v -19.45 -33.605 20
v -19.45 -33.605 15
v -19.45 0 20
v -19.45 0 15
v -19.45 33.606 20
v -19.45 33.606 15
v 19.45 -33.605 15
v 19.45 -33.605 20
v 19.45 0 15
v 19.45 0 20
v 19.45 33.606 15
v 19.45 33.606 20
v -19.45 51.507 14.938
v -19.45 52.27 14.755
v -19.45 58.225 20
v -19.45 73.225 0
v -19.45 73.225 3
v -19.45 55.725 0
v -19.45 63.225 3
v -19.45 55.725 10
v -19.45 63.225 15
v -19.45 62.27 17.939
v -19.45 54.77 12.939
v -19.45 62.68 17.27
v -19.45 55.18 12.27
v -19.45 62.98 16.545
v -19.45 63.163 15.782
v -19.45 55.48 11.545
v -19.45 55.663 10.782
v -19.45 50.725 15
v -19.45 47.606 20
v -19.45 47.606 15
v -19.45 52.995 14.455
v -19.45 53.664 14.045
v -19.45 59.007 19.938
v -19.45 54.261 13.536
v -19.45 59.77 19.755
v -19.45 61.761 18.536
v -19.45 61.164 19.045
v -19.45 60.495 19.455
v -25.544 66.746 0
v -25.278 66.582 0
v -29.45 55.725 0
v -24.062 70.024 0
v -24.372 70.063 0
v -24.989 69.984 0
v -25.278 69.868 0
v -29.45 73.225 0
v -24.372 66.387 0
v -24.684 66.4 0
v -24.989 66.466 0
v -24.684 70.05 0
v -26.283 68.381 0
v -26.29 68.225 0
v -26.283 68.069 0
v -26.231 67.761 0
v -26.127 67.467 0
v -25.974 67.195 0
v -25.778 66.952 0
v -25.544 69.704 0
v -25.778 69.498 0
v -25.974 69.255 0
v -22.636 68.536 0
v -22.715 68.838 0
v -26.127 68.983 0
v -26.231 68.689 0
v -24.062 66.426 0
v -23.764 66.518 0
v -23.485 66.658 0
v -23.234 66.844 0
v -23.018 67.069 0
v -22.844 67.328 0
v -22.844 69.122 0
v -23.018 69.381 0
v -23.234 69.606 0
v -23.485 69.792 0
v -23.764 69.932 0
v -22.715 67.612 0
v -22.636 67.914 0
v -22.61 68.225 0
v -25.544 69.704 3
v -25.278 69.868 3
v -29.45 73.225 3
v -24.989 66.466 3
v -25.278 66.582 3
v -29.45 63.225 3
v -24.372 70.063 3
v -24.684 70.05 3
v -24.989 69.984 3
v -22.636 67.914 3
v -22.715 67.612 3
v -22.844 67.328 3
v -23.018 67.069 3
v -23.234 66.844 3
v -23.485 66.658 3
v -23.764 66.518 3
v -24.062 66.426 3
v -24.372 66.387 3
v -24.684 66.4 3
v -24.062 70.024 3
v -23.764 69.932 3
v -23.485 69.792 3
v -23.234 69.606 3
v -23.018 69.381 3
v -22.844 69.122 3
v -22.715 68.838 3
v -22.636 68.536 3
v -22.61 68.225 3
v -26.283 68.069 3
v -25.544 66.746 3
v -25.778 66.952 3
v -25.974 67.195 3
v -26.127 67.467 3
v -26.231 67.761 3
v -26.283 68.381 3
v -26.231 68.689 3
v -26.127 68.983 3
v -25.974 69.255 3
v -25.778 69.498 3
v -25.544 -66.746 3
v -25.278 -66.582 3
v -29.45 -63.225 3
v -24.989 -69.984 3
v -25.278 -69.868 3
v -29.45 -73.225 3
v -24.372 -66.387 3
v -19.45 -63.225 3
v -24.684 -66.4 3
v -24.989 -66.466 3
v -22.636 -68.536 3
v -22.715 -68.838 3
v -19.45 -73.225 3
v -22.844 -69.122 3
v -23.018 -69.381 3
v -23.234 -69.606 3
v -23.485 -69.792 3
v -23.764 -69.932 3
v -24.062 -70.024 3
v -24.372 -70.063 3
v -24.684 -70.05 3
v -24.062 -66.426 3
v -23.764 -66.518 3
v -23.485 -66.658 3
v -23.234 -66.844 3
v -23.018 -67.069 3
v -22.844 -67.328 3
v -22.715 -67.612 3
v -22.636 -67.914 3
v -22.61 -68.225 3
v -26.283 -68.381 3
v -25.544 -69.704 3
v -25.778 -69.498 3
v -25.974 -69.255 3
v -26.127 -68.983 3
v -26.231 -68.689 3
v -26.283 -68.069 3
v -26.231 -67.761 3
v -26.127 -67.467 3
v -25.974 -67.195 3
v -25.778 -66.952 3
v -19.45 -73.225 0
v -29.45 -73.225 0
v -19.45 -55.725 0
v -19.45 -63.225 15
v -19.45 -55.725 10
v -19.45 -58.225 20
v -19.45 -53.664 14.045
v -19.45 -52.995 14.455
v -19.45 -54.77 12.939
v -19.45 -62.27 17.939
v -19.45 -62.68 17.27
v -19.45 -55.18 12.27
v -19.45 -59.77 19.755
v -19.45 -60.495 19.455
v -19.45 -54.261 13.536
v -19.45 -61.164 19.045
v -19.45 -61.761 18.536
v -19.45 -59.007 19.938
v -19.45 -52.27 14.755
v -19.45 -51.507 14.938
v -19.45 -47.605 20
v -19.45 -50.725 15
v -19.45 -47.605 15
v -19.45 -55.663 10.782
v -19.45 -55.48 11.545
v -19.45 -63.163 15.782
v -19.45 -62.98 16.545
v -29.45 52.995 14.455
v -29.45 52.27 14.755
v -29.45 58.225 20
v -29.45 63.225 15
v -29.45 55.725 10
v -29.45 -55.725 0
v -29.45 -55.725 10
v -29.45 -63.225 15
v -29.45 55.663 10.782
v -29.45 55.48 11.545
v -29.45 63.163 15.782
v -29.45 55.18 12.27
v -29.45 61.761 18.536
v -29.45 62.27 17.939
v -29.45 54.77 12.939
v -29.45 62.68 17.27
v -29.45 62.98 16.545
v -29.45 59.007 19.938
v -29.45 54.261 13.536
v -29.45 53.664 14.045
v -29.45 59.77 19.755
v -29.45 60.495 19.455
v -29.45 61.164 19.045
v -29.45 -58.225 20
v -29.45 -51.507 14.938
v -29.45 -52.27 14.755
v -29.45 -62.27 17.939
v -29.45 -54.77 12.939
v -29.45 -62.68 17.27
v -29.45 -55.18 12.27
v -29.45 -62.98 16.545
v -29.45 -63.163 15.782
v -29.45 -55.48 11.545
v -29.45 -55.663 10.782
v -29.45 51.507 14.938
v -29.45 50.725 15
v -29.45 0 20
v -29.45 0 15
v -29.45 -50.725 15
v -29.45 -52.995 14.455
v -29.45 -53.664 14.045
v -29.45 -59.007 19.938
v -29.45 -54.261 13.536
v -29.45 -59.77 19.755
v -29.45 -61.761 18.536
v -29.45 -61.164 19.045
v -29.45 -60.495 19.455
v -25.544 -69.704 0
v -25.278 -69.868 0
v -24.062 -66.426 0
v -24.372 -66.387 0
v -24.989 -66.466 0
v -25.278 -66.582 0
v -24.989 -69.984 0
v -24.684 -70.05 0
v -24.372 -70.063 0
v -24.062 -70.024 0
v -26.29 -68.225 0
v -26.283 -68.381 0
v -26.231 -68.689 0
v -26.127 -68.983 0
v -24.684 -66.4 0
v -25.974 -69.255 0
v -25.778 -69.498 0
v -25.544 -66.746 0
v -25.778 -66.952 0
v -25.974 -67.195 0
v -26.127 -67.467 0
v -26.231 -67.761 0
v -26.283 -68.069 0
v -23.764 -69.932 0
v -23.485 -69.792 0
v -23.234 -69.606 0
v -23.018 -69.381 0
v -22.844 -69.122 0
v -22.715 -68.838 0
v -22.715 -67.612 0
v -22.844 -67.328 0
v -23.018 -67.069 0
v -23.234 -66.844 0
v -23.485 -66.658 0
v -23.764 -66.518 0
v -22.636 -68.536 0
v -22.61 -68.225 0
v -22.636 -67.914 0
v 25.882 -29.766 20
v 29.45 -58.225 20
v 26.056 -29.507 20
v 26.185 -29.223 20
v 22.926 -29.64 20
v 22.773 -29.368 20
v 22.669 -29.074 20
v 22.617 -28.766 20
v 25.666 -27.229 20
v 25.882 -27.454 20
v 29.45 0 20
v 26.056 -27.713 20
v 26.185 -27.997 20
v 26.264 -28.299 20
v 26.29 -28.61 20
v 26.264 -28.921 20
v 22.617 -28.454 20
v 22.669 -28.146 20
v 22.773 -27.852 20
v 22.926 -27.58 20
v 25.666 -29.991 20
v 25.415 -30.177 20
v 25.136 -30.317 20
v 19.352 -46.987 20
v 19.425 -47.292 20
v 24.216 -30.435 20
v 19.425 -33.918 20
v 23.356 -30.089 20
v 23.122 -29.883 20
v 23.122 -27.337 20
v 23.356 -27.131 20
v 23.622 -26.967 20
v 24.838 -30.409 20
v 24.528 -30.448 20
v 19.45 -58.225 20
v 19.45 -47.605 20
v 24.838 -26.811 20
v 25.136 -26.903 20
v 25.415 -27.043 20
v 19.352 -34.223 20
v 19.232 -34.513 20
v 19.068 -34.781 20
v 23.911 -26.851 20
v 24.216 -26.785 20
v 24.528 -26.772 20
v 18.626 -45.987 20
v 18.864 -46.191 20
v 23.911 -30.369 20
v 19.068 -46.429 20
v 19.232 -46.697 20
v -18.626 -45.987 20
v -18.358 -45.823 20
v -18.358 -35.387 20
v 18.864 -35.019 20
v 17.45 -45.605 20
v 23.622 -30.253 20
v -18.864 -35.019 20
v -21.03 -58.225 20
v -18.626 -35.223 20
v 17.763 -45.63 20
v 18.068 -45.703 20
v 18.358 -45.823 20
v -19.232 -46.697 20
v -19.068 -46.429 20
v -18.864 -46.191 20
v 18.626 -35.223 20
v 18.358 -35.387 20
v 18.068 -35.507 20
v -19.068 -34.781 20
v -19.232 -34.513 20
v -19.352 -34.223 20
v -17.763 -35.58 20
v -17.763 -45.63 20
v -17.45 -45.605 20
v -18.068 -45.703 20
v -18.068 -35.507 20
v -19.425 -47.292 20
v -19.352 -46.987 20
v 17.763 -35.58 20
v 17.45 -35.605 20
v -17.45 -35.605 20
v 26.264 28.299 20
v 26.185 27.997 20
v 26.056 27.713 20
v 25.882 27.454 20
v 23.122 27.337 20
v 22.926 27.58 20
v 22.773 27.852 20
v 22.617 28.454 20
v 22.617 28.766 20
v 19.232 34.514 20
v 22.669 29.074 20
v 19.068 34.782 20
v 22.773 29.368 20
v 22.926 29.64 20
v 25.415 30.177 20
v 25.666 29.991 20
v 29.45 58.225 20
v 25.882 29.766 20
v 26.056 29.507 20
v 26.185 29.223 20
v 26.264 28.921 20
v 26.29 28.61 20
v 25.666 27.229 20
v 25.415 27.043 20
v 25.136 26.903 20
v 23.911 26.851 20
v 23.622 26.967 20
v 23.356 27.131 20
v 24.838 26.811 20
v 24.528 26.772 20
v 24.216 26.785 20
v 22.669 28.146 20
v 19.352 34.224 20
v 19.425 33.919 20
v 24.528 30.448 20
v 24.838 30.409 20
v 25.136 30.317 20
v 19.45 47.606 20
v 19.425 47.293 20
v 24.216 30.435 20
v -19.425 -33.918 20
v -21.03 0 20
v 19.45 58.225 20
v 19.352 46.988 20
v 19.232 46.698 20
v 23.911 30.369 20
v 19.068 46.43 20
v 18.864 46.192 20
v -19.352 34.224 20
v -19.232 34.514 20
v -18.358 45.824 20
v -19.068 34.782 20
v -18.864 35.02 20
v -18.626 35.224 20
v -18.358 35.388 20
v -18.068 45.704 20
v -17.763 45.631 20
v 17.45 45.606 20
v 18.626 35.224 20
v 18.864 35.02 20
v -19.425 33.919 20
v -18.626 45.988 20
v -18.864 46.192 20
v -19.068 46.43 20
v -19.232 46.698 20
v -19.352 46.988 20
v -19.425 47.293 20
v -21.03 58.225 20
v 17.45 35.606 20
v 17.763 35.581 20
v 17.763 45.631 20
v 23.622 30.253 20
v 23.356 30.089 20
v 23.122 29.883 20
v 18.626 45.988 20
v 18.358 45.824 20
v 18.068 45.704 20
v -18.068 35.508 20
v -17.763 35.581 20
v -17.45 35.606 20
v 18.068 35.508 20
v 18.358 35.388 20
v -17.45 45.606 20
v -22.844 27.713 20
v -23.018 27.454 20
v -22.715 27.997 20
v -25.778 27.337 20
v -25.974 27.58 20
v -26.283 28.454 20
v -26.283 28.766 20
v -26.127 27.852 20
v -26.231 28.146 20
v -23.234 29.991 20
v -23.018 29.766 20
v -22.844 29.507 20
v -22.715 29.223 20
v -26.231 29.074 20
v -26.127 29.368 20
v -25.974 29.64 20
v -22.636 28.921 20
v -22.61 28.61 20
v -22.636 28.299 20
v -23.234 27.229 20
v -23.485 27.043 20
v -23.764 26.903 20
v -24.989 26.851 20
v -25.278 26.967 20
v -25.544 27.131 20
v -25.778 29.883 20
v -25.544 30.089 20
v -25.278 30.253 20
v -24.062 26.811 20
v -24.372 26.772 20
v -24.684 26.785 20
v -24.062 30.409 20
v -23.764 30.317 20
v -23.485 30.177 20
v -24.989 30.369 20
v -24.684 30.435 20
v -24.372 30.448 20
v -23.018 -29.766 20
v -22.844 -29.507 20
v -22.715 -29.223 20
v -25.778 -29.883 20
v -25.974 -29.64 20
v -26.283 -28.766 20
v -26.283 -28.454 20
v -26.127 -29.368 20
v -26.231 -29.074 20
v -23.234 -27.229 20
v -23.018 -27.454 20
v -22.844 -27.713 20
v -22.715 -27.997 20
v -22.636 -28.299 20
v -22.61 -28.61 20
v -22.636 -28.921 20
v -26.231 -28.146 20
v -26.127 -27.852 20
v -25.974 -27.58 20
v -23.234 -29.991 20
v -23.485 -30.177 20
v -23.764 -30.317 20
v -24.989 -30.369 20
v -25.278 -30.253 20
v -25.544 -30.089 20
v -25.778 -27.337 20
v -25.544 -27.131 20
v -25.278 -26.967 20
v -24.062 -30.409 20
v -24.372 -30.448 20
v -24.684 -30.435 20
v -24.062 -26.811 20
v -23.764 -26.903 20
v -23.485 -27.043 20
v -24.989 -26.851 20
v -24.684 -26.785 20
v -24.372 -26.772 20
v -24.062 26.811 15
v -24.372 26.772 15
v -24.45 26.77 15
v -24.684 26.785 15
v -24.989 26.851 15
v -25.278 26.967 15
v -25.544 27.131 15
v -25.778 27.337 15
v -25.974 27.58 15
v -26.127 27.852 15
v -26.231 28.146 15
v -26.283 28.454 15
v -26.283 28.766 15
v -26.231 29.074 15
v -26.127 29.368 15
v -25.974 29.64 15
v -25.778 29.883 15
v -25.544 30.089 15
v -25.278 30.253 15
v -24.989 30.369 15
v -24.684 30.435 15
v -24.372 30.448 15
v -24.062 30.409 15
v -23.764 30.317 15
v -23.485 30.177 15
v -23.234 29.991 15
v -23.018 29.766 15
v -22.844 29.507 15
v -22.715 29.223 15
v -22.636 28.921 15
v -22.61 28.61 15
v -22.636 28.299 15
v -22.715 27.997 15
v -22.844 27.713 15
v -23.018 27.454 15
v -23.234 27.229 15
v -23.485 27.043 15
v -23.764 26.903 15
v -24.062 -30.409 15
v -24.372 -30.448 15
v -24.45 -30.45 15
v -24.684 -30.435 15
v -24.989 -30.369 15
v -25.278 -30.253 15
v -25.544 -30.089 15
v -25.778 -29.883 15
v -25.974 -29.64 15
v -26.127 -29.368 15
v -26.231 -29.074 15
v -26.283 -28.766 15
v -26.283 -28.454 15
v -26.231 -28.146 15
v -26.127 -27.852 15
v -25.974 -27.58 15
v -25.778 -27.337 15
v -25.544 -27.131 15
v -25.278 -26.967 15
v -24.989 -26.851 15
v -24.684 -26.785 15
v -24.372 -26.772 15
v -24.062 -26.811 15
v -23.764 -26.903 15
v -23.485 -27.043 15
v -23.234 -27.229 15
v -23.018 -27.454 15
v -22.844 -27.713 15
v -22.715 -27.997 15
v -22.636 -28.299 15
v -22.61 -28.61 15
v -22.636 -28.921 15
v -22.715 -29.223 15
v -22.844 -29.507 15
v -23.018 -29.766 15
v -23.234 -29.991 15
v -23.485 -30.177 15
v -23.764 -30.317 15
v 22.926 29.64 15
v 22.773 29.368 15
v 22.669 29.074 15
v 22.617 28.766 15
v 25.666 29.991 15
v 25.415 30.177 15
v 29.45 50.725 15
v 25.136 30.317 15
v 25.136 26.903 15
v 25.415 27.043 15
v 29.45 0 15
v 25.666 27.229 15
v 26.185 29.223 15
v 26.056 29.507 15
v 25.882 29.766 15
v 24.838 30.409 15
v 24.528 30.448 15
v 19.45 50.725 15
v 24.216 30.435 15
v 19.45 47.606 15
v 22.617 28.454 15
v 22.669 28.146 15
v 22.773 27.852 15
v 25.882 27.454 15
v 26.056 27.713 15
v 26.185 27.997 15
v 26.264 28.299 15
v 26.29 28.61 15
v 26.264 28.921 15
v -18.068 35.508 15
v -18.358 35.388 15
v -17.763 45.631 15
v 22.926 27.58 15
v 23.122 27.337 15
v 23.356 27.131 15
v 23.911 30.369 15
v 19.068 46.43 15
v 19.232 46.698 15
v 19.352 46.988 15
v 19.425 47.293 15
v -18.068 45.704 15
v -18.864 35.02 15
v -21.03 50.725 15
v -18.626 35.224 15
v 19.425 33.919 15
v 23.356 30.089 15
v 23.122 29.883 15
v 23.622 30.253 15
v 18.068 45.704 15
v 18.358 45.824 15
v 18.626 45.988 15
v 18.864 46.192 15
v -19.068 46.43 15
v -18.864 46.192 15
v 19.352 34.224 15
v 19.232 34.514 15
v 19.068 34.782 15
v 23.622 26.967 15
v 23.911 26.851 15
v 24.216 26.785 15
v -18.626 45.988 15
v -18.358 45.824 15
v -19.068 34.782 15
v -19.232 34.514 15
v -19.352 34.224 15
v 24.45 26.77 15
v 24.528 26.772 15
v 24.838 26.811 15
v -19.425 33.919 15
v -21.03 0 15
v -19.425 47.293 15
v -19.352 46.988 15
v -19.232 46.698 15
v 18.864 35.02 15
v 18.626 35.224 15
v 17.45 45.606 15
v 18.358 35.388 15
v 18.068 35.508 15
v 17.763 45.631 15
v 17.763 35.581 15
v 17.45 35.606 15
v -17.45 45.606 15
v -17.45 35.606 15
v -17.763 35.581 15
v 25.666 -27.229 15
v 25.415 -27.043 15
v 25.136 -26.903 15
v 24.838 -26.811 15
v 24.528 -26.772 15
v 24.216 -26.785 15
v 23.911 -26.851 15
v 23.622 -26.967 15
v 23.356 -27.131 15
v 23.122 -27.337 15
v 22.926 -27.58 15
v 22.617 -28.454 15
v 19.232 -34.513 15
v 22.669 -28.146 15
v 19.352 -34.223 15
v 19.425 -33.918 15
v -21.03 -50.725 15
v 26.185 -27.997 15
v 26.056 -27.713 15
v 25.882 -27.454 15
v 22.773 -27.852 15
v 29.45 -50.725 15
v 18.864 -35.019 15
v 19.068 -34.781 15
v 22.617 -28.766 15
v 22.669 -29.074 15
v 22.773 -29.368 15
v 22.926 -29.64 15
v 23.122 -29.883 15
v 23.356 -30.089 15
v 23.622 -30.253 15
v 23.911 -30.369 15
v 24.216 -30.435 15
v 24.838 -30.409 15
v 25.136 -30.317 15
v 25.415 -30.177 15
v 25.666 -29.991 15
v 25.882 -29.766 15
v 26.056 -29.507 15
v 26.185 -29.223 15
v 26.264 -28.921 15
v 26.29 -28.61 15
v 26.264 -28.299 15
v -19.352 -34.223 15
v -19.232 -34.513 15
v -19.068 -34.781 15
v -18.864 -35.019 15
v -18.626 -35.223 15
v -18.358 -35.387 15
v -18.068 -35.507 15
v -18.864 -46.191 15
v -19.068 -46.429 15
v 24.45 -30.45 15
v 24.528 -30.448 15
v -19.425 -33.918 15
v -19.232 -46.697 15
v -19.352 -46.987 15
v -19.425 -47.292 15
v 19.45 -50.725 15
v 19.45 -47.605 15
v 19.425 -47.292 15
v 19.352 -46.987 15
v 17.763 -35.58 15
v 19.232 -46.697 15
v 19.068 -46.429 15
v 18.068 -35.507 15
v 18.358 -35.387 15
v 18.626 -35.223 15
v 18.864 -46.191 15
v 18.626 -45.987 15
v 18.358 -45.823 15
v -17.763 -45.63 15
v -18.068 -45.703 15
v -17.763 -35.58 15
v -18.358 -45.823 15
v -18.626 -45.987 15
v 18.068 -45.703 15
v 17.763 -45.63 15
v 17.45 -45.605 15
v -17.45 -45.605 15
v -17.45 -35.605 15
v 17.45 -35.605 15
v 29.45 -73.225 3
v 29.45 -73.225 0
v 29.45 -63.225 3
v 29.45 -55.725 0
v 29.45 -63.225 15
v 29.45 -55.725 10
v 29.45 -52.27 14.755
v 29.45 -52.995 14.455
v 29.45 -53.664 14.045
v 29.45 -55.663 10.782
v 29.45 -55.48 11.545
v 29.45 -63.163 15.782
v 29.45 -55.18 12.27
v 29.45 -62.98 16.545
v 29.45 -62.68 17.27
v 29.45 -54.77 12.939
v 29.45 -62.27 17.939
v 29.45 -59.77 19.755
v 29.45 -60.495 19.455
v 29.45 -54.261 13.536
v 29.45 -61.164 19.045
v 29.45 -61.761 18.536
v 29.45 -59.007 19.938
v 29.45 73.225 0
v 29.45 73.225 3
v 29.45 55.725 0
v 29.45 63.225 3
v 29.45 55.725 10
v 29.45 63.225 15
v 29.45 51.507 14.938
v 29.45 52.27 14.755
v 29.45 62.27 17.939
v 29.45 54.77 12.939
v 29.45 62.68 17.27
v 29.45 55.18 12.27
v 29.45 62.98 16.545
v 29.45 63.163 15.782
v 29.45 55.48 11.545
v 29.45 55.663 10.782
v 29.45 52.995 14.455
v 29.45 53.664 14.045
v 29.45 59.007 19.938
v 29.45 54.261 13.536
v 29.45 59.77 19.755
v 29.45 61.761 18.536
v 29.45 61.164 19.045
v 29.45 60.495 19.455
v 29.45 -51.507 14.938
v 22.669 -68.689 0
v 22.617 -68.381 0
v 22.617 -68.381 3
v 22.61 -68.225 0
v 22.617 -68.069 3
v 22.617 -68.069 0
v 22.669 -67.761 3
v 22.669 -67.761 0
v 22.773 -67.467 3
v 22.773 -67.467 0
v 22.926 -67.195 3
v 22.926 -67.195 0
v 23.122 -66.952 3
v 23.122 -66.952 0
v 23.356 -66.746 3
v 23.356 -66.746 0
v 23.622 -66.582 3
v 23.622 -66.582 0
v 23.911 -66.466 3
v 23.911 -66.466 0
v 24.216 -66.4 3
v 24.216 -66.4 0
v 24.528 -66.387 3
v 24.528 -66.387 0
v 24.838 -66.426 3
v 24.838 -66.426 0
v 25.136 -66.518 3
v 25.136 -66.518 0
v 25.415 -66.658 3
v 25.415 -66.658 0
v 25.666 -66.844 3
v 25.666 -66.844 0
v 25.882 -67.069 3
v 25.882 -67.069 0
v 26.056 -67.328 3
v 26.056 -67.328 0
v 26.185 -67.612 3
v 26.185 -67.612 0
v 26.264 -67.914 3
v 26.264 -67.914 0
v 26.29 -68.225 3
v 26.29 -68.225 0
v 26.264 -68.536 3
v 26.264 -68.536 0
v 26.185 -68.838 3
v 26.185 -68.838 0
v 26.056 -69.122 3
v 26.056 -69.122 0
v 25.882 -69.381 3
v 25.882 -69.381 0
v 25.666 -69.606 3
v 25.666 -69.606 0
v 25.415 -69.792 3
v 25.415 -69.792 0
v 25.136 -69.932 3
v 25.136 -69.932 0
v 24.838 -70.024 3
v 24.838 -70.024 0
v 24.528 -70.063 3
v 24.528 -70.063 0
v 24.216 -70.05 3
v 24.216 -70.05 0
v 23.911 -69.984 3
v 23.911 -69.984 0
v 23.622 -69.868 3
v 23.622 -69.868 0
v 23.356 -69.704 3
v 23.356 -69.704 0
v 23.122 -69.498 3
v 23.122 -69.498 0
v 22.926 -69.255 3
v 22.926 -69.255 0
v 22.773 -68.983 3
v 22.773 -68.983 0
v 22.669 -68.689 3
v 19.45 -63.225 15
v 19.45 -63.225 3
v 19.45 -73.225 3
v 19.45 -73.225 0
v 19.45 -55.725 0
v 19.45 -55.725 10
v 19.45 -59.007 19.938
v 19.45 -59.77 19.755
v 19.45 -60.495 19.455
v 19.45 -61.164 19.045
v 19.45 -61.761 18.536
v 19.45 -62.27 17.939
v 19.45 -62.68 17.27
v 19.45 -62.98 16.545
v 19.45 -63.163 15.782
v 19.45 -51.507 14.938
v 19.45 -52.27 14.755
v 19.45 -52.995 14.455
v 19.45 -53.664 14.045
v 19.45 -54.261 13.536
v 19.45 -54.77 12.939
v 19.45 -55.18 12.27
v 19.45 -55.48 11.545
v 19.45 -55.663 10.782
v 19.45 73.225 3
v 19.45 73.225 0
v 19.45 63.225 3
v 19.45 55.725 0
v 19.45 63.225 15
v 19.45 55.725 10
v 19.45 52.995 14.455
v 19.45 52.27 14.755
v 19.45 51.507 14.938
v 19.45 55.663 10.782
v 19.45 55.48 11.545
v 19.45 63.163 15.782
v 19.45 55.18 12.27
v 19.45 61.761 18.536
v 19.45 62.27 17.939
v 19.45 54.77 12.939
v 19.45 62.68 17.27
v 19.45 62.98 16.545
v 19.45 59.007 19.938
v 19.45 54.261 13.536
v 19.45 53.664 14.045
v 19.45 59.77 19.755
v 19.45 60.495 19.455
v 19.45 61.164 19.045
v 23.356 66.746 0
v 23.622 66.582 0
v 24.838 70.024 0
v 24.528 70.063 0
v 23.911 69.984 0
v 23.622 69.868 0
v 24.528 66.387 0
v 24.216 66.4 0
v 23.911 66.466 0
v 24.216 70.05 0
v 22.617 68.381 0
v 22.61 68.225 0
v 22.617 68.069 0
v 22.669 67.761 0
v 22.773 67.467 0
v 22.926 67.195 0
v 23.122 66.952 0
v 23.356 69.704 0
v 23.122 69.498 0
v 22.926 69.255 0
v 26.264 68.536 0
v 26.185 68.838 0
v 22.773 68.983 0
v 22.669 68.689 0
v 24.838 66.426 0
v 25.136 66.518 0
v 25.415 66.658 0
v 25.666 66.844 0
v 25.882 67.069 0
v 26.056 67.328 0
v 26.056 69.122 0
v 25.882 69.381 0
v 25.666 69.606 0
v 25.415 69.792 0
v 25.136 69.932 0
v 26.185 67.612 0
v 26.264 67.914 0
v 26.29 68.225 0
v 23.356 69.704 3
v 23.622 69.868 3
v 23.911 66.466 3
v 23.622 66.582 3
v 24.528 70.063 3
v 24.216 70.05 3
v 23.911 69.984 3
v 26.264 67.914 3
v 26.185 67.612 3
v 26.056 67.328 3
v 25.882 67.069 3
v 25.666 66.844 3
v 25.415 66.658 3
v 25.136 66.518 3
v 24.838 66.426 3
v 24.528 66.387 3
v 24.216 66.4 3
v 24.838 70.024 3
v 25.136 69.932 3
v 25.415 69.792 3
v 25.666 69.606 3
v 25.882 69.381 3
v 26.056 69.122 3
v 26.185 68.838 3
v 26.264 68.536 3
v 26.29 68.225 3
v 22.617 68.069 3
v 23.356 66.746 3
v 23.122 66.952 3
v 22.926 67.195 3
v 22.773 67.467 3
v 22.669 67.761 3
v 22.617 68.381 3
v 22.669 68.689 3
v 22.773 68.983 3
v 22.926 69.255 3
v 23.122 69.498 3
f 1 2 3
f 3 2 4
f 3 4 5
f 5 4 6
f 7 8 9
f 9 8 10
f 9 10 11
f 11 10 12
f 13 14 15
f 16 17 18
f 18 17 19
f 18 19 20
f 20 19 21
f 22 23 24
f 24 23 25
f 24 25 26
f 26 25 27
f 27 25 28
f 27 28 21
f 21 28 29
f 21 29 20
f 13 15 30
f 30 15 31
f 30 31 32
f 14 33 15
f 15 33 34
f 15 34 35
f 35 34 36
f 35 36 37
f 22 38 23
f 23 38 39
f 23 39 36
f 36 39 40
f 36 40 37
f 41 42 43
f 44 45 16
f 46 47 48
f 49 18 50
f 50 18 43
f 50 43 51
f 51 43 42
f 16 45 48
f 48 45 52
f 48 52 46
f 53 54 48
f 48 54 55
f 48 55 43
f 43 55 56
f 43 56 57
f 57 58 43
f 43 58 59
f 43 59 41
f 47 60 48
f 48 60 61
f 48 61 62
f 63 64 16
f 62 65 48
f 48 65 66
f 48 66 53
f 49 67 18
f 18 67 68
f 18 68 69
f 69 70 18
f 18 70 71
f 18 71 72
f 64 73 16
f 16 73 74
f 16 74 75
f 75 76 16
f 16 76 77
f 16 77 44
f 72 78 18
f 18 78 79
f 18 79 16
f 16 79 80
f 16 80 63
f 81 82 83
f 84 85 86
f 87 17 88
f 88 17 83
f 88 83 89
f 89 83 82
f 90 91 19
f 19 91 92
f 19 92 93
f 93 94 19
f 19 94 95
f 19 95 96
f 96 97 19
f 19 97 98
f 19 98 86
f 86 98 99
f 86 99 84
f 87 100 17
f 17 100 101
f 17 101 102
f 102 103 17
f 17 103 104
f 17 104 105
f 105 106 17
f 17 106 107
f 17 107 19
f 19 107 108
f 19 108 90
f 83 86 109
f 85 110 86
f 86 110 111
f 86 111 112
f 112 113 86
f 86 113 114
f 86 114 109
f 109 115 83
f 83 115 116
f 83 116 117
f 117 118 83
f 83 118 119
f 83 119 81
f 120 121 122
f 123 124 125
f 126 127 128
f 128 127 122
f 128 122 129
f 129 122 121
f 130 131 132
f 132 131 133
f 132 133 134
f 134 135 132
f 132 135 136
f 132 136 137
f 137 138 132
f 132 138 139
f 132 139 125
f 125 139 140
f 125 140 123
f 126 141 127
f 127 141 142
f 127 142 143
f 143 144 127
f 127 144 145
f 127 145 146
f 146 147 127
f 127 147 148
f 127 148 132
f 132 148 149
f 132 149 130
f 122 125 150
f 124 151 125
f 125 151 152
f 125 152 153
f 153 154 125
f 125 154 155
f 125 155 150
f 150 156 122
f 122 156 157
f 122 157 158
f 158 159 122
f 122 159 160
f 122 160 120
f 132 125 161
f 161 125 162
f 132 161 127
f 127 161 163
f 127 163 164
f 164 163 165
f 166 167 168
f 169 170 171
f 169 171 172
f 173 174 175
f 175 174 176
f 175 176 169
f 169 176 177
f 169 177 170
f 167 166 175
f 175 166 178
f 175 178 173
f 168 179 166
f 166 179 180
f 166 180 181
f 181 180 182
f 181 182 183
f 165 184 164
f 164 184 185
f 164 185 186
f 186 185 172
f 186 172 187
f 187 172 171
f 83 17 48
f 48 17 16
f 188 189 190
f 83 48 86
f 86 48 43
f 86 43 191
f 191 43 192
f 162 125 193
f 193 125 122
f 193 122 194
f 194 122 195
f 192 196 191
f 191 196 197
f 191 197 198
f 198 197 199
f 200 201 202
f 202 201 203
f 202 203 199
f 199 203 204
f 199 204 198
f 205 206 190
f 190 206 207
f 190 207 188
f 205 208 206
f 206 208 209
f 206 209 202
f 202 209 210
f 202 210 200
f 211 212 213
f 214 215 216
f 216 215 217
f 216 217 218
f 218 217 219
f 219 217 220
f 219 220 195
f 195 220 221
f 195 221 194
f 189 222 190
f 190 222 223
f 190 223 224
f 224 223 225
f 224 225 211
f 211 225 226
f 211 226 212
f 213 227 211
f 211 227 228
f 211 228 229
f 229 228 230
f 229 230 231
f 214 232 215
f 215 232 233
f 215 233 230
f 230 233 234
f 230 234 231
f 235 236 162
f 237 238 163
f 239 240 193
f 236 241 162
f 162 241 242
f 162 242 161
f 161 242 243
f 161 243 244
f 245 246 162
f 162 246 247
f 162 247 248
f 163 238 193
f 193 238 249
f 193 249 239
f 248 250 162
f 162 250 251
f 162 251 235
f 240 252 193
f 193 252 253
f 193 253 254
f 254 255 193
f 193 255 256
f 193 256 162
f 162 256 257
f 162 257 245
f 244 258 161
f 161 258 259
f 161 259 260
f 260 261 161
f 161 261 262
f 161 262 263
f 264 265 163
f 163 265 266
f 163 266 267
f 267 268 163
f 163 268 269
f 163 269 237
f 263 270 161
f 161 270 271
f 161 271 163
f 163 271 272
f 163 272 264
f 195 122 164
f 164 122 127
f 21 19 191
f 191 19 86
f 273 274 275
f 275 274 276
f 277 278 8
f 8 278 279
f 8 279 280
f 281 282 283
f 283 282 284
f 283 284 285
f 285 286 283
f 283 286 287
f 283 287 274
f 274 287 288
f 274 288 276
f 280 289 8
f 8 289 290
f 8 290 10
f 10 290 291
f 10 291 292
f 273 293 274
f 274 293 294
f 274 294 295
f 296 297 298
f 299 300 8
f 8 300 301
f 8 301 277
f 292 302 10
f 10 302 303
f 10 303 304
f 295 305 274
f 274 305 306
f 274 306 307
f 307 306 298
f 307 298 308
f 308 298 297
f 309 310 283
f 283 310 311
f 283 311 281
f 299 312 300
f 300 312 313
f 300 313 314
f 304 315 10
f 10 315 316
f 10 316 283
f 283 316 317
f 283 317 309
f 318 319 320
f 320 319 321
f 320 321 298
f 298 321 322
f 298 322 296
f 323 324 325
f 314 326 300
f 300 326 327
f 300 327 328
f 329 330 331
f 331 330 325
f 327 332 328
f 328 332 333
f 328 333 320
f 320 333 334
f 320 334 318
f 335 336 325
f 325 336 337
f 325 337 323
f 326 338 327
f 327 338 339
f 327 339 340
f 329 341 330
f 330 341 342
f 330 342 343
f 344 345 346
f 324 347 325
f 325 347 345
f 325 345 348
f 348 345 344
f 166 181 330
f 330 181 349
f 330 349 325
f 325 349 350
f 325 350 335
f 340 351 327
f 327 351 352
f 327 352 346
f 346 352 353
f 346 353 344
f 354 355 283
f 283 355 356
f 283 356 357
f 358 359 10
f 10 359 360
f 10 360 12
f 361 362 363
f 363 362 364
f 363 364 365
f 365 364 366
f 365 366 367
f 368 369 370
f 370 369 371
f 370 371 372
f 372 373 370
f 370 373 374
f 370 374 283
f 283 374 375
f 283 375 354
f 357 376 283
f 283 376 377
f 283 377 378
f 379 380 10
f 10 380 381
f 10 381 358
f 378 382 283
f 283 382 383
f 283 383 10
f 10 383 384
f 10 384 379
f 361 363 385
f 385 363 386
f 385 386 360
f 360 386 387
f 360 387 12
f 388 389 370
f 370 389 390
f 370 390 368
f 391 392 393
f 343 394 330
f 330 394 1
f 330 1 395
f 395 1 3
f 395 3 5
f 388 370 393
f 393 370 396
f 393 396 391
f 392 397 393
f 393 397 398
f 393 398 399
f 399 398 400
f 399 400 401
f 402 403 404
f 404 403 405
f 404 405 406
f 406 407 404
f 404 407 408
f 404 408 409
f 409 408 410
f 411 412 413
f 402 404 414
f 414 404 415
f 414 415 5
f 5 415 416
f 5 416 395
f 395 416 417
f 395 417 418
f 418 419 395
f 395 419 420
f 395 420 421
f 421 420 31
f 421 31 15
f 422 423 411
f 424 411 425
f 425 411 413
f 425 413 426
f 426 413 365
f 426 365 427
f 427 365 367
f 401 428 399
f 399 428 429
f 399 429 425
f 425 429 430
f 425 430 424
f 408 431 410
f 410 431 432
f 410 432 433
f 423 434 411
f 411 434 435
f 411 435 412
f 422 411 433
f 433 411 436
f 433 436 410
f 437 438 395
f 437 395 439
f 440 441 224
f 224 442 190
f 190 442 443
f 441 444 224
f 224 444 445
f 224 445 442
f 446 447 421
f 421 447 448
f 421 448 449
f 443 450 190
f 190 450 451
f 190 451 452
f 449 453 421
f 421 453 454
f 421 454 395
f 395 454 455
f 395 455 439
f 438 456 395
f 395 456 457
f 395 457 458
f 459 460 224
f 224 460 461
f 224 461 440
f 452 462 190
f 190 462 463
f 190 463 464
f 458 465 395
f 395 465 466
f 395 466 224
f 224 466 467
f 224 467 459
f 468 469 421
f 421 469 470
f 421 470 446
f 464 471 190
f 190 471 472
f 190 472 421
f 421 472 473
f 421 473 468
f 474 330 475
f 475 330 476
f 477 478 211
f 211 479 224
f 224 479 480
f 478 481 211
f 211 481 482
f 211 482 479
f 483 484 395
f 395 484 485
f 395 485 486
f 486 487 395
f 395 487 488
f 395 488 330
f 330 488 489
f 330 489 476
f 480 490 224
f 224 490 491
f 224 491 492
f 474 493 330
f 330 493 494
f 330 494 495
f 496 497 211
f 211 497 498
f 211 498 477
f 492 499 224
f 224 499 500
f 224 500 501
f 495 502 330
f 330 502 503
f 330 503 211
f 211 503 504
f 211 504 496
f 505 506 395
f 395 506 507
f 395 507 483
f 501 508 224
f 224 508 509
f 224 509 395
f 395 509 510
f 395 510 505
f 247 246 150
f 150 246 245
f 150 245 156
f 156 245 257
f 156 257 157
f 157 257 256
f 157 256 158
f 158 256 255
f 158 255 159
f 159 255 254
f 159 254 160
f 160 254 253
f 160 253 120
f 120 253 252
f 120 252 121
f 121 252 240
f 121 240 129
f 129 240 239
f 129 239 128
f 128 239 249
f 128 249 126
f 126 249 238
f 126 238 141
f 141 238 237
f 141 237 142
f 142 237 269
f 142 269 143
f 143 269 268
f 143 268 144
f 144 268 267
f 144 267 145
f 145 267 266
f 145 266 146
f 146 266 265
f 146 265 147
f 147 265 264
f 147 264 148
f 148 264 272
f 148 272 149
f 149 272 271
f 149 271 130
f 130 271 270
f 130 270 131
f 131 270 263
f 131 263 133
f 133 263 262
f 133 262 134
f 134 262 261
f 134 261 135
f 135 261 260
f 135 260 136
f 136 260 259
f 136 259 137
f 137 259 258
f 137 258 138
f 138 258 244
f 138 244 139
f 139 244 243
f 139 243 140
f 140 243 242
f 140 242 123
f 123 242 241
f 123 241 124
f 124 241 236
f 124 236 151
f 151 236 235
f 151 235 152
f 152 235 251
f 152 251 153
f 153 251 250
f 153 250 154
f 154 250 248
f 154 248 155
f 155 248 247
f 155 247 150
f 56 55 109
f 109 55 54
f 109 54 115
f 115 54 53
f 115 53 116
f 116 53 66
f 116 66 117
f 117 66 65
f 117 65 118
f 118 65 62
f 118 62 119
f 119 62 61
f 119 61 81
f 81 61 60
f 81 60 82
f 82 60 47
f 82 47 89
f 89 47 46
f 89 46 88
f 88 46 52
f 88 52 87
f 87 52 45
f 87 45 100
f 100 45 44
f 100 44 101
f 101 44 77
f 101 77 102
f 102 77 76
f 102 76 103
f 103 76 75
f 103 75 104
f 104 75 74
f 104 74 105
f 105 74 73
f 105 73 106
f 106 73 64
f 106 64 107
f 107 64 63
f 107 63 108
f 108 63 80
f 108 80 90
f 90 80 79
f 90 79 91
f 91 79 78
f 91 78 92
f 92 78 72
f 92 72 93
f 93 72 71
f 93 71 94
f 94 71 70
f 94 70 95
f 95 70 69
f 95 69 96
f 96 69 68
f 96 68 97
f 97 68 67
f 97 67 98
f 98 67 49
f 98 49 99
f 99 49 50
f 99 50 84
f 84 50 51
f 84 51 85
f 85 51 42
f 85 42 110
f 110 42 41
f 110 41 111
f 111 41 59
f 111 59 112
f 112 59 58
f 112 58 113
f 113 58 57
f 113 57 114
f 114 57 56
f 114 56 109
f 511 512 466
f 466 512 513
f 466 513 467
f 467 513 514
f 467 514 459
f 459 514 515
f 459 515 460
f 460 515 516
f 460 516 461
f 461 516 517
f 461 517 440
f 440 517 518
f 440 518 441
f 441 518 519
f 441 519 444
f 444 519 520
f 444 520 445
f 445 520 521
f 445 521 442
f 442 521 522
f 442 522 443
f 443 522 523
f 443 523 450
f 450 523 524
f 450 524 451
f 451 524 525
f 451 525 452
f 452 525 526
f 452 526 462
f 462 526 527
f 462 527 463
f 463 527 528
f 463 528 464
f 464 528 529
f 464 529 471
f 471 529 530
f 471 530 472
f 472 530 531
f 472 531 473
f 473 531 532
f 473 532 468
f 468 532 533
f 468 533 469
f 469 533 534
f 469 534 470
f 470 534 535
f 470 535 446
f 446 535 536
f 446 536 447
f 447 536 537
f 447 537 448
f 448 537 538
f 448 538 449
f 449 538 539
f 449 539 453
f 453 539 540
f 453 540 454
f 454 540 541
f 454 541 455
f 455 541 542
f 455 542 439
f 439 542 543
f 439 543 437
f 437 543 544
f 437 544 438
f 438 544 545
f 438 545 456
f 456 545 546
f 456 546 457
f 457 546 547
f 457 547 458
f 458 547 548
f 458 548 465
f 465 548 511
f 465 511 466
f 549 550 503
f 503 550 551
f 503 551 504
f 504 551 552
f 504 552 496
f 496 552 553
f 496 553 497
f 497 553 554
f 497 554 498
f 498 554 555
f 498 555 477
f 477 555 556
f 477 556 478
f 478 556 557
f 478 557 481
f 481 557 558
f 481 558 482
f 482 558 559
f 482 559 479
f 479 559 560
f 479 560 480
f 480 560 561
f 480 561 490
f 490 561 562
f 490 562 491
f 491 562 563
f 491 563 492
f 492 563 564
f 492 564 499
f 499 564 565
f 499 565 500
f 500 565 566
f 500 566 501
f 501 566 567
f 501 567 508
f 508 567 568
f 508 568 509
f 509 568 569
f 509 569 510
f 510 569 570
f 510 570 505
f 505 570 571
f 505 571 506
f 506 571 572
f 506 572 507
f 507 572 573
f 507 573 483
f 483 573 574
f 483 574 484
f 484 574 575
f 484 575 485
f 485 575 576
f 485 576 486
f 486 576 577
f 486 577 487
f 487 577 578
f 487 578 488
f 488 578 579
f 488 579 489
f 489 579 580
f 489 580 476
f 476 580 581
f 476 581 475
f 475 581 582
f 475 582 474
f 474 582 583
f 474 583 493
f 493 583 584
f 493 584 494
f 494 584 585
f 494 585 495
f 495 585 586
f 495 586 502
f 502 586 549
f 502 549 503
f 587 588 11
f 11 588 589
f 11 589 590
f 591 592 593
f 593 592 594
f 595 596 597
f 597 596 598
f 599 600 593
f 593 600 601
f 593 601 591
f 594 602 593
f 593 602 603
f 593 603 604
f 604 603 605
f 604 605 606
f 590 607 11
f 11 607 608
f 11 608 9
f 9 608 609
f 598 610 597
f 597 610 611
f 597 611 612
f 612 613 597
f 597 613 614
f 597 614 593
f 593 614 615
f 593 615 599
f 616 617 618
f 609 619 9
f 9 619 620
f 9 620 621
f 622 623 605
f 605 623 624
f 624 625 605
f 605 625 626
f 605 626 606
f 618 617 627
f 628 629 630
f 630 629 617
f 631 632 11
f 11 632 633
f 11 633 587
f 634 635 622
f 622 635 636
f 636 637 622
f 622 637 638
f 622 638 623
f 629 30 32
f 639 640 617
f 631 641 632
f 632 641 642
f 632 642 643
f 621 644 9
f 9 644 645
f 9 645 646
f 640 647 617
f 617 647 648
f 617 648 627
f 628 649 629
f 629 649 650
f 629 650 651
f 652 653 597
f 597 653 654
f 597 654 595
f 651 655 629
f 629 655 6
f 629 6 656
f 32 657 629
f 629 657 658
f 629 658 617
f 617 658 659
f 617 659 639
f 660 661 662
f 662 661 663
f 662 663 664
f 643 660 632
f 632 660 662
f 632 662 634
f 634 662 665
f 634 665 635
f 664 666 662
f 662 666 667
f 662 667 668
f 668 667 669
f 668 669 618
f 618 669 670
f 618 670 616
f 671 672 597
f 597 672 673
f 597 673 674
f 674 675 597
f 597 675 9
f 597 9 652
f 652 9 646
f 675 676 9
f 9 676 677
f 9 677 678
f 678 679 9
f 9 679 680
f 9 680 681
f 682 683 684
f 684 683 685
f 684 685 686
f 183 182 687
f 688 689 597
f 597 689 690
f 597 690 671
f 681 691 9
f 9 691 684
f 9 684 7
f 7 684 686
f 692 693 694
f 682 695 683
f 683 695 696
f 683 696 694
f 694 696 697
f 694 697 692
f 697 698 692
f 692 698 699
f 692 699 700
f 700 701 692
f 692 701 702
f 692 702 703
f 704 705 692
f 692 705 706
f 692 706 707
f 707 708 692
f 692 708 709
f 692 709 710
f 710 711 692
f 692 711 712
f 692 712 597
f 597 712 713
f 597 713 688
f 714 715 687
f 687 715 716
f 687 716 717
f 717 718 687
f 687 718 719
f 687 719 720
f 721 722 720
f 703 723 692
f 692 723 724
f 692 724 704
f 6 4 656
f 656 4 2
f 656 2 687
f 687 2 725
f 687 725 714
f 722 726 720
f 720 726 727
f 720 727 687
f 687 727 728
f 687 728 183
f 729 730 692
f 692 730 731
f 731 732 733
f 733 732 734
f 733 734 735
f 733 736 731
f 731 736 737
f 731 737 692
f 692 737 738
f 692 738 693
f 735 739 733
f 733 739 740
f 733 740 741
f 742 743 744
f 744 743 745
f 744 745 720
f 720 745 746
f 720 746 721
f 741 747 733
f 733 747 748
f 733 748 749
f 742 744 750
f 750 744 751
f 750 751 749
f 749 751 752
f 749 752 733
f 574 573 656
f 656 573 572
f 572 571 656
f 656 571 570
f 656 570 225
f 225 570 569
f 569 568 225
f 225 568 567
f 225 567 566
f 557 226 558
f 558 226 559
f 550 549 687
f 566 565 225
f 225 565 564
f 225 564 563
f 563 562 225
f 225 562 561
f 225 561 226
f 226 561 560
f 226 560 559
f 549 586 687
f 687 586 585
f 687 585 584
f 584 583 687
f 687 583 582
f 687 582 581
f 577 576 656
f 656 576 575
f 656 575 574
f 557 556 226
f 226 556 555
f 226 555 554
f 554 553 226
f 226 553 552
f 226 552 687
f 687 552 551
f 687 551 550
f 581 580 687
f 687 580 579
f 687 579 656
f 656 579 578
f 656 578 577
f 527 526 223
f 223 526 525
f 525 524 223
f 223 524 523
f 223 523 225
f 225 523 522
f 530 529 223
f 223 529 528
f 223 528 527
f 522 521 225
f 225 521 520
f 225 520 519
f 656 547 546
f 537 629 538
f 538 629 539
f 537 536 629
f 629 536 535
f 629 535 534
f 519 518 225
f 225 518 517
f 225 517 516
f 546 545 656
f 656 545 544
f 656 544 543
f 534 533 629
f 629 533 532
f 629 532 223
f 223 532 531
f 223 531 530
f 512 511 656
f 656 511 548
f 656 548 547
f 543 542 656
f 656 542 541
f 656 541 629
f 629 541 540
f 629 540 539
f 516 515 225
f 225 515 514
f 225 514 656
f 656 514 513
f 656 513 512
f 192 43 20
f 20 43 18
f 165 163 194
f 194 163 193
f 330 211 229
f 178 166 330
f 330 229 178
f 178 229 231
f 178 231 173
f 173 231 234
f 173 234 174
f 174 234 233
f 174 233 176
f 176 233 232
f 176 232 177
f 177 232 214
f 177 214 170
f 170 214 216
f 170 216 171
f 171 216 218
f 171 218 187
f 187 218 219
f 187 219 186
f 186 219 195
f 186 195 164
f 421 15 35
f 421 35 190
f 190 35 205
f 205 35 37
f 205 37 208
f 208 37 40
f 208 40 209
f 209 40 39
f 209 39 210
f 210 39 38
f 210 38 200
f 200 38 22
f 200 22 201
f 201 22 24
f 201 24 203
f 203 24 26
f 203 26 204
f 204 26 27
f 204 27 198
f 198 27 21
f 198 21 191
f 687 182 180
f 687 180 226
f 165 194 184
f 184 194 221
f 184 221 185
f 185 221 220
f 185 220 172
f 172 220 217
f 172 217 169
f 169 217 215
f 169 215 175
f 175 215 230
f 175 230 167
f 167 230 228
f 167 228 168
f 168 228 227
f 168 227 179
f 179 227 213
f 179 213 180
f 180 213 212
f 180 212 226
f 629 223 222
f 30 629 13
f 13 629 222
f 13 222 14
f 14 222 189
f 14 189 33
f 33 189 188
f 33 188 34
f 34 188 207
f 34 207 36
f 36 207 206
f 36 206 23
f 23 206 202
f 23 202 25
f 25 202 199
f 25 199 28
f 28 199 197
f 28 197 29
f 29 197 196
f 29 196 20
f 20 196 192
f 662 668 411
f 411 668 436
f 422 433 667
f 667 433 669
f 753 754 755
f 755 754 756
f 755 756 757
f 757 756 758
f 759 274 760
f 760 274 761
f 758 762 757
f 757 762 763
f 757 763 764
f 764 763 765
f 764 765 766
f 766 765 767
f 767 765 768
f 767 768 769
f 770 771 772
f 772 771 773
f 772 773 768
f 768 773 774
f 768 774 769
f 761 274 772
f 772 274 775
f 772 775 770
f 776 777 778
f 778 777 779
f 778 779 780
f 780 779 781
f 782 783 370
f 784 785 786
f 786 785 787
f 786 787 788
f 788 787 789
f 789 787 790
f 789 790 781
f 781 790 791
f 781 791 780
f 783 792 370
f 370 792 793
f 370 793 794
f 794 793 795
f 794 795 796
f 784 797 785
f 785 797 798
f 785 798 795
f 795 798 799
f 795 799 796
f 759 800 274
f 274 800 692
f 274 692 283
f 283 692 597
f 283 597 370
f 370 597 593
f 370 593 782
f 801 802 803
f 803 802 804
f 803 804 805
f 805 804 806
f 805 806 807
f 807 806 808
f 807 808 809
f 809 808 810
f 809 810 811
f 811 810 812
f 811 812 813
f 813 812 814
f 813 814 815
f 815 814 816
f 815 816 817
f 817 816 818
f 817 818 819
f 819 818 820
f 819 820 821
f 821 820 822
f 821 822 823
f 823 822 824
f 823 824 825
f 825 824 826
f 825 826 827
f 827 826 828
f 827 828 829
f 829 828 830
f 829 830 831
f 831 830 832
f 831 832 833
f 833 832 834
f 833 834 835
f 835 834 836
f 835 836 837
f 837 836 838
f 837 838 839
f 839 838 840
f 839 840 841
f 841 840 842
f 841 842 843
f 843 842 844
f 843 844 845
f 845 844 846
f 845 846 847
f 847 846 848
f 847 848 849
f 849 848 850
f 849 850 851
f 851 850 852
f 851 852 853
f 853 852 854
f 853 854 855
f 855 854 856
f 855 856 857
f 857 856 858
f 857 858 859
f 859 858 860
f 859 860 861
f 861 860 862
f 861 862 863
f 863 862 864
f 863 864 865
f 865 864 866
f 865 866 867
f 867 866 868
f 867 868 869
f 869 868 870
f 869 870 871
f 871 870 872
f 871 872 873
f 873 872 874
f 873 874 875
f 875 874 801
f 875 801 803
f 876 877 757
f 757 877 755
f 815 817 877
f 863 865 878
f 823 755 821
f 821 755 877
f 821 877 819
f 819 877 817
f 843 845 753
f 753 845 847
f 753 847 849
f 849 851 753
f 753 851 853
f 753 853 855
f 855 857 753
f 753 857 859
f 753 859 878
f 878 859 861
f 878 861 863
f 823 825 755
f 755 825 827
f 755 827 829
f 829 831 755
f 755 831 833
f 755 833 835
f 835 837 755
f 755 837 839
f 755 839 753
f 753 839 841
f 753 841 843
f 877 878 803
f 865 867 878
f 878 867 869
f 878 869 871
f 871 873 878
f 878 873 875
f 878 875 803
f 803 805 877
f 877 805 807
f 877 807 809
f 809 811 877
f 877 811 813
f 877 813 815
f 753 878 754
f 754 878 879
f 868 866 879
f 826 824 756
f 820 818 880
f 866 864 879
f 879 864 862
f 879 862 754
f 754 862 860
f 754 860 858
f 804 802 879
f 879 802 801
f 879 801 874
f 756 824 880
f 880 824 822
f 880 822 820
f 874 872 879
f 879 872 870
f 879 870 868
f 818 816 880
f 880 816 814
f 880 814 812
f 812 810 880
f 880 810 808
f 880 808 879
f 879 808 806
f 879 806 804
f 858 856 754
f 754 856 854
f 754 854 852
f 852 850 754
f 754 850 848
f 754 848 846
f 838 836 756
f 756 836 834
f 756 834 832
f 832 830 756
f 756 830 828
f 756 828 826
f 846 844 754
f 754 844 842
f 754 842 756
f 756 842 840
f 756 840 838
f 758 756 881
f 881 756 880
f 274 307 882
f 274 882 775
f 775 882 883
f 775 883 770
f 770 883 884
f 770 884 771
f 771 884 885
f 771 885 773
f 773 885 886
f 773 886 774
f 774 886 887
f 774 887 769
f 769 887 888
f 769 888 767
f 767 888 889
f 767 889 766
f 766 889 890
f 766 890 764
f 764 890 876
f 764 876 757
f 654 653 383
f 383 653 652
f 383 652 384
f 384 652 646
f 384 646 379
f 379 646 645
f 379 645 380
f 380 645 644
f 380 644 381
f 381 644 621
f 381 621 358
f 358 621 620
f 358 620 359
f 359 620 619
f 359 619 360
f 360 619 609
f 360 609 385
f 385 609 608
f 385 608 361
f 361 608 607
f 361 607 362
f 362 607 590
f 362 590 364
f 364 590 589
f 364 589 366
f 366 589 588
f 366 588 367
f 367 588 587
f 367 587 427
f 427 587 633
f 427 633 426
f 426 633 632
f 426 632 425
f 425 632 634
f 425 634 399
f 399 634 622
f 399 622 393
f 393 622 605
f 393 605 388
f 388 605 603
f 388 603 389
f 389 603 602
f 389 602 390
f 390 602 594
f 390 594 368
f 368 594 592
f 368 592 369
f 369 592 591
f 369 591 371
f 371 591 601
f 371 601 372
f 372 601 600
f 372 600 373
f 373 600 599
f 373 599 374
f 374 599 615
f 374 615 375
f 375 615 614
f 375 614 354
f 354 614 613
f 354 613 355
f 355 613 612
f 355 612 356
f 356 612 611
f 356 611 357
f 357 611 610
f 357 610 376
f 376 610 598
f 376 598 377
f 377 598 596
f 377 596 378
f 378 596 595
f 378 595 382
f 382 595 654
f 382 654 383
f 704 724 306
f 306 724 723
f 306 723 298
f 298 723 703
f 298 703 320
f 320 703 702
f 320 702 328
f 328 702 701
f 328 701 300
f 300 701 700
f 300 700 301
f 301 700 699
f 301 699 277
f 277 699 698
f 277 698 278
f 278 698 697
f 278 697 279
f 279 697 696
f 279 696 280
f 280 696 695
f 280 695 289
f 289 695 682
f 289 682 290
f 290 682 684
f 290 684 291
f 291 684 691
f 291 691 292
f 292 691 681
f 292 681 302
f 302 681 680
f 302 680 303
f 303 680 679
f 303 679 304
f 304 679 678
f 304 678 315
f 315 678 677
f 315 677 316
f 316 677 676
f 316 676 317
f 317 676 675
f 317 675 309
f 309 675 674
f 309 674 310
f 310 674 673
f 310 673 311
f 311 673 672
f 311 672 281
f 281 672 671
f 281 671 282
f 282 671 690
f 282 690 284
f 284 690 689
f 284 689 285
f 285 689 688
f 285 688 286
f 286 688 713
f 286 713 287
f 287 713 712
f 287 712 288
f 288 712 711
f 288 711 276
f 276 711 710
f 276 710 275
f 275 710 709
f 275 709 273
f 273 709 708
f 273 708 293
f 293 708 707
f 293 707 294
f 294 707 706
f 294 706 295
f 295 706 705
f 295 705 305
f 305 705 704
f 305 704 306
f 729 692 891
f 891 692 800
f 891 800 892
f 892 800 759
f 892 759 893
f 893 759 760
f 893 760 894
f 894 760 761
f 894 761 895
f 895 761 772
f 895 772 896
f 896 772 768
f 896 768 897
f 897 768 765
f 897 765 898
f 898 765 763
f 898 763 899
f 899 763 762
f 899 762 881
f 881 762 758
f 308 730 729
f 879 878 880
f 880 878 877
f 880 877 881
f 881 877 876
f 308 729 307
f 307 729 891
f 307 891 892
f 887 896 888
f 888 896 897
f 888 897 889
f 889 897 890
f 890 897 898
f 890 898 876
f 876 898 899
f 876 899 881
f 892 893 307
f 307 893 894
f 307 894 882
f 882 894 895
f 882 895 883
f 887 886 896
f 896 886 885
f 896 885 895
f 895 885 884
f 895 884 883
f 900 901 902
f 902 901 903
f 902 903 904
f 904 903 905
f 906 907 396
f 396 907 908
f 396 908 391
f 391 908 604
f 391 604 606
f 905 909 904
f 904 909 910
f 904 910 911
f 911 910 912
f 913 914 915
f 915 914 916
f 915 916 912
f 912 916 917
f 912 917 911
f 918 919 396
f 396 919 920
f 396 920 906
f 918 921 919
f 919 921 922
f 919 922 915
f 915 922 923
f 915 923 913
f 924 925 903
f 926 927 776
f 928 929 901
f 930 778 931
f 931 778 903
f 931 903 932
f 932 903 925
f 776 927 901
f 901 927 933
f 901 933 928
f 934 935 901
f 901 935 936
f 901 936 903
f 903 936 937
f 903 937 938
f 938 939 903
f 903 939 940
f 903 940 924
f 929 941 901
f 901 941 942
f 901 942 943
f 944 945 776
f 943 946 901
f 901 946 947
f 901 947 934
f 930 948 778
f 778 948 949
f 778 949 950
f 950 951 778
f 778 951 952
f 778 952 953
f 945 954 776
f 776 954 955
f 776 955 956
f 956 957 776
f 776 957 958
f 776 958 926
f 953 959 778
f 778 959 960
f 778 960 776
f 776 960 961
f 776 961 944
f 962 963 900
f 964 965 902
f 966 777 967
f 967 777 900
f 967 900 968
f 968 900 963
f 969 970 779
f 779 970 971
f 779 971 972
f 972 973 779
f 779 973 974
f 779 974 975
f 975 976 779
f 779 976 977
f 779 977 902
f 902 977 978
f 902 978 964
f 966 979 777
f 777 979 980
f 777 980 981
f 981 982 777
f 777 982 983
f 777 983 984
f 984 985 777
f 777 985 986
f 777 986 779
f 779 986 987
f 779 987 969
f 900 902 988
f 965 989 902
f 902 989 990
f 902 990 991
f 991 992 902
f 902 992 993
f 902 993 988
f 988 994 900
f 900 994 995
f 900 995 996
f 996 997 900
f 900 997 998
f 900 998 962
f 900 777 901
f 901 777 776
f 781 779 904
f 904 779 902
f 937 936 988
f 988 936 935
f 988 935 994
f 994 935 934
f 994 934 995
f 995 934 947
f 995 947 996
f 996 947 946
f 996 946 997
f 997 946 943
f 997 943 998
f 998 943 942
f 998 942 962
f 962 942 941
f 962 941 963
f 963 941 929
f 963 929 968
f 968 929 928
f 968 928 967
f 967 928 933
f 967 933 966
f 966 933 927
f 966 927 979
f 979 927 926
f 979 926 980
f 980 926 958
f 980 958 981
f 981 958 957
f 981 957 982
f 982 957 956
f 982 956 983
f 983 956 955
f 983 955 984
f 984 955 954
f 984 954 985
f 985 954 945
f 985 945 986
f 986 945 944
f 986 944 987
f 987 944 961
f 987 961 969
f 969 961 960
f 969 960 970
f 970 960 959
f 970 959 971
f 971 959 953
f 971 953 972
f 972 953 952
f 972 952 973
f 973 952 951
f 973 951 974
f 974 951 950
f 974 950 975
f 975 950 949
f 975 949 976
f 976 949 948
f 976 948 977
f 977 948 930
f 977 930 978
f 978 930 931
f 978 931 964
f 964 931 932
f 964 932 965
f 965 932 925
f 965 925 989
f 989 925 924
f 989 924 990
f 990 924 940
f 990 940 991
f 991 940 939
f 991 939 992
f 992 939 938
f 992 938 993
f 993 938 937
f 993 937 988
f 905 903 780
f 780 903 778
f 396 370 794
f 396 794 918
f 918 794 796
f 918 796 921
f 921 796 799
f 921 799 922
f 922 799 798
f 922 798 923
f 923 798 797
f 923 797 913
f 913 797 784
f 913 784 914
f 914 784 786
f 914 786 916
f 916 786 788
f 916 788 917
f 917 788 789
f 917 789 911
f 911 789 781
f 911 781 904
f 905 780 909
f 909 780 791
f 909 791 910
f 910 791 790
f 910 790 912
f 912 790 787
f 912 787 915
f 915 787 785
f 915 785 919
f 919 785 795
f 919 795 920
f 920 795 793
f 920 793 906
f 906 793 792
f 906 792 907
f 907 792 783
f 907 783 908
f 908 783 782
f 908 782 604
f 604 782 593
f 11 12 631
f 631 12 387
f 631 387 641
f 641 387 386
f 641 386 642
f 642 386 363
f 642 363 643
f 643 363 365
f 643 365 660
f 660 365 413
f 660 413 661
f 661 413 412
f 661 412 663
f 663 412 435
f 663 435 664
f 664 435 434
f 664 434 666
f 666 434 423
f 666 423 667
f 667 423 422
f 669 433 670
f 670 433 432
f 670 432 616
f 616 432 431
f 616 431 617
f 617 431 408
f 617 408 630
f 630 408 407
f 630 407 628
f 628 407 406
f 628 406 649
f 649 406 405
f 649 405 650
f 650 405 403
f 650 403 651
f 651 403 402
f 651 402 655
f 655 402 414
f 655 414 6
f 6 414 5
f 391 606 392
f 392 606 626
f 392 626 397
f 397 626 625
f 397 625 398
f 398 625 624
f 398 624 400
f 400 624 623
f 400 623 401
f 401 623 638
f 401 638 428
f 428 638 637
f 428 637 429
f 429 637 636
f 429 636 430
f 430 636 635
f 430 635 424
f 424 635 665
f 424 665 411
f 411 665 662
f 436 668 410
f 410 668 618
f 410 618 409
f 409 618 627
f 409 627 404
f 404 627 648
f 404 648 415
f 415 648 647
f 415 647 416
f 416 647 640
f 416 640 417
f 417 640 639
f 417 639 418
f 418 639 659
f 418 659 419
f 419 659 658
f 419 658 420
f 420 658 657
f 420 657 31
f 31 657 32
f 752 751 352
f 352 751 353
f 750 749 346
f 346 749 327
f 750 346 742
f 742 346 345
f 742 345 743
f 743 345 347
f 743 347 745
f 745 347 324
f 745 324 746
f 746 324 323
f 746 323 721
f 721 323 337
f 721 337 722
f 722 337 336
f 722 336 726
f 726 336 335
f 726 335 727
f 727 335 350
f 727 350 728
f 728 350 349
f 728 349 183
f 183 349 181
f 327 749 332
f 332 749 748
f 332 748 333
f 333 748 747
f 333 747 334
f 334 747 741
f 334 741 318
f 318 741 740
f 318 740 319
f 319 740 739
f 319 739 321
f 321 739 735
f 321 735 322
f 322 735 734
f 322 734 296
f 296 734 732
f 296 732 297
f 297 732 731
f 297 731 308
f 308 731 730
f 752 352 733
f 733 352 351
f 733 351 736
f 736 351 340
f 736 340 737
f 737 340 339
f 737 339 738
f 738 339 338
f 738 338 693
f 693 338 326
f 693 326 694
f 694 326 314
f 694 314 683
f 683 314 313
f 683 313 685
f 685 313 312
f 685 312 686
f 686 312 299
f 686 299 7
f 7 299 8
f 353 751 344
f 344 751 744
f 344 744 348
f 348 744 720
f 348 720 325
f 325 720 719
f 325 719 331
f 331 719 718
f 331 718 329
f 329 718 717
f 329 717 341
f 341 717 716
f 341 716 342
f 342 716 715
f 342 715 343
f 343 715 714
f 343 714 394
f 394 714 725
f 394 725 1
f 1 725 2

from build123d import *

# Parameters (mm, degrees)
ESQUISSE1_W                = 10
ESQUISSE1_H                = 146.45
BOSS_EXTRU_3_DEPTH         = 3
ESQUISSE3_W                = 10
ESQUISSE3_H                = 126.45
BOSS_EXTRU_4_DEPTH         = 17
ESQUISSE4_R                = 1.84
ENL_V_MAT_EXTRU_1_DEPTH    = 17
ESQUISSE5_R                = 1.84
ENL_V_MAT_EXTRU_2_DEPTH    = 82.419918478
ESQUISSE6_W                = 15
ESQUISSE6_H                = 111.45
ENL_V_MAT_EXTRU_3_DEPTH    = 77.563049998
CONG_1_R                   = 5
CONG_2_R                   = 5
R_P_TITION_LIN_AIRE1_COUNT = 2
R_P_TITION_LIN_AIRE1_PITCH = 48.9
ESQUISSE7_W                = 58.9
ESQUISSE7_H                = 10
BOSS_EXTRU_5_DEPTH         = 5
CONG_4_R                   = 2
ESQUISSE8_W                = 58.9
ESQUISSE8_H                = 10
BOSS_EXTRU_6_DEPTH         = 5
CONG_5_R                   = 2


with BuildPart() as part:
    # Esquisse1 → Boss.-Extru.3 (new body)
    with BuildSketch(Plane.XY):
        with Locations((-24.45, 0)):
            Rectangle(ESQUISSE1_W, ESQUISSE1_H)
    extrude(amount=BOSS_EXTRU_3_DEPTH)

    # Esquisse3 → Boss.-Extru.4 (add)
    with BuildSketch(Plane.XY.offset(3)):
        with Locations((-24.45, 0)):
            Rectangle(ESQUISSE3_W, ESQUISSE3_H)
    extrude(amount=BOSS_EXTRU_4_DEPTH)

    # Esquisse4 → Enlèv. mat.-Extru.1 (cut)
    with BuildSketch(Plane.XY.offset(3)):
        with Locations((-24.45, -68.225)):
            Circle(ESQUISSE4_R)
    enl_v_mat_extru_1 = extrude(amount=-ENL_V_MAT_EXTRU_1_DEPTH, mode=Mode.SUBTRACT)

    # Symétrie1: Enlèv. mat.-Extru.1 across plane
    add(enl_v_mat_extru_1.mirror(Plane.ZX), mode=Mode.SUBTRACT)

    # Esquisse5 → Enlèv. mat.-Extru.2 (cut, through all)
    with BuildSketch(Plane.XY.offset(20)):
        with Locations((-24.45, 28.61)):
            Circle(ESQUISSE5_R)
    enl_v_mat_extru_2 = extrude(amount=-ENL_V_MAT_EXTRU_2_DEPTH, mode=Mode.SUBTRACT)

    # Symétrie2: Enlèv. mat.-Extru.2 across plane
    add(enl_v_mat_extru_2.mirror(Plane.ZX), mode=Mode.SUBTRACT)

    # Esquisse6 → Enlèv. mat.-Extru.3 (cut, through all)
    with BuildSketch(Plane.ZY.offset(29.45)):
        with Locations((7.5, 0)):
            Rectangle(ESQUISSE6_W, ESQUISSE6_H)
    extrude(amount=-ENL_V_MAT_EXTRU_3_DEPTH, mode=Mode.SUBTRACT)

    # Congé1
    cong_1_edges = [part.edges().sort_by_distance(p)[0] for p in [
        (-24.45, -63.225, 20),
        (-24.45, 63.225, 20),
    ]]
    fillet(cong_1_edges, radius=CONG_1_R)

    # Congé2
    cong_2_edges = [part.edges().sort_by_distance(p)[0] for p in [
        (-24.45, 55.725, 15),
        (-24.45, -55.725, 15),
    ]]
    fillet(cong_2_edges, radius=CONG_2_R)


with BuildPart() as r_p_tition_lin_aire1_1:
    # Répétition linéaire1: pattern copy
    add(part.part.moved(Location(Vector(1, 0, 0) * (1 * R_P_TITION_LIN_AIRE1_PITCH))))


with BuildPart() as part_1:
    add(part.part)

    add(r_p_tition_lin_aire1_1.part)  # Boss.-Extru.5 merges Répétition linéaire1_1
    # Esquisse7 → Boss.-Extru.5 (add)
    with BuildSketch(Plane(origin=(0, 0, 15), x_dir=(-1, 0, 0), z_dir=(0, 0, -1))):
        with Locations((0, 40.605950242)):
            Rectangle(ESQUISSE7_W, ESQUISSE7_H)
    extrude(amount=-BOSS_EXTRU_5_DEPTH)

    # Congé4
    cong_4_edges = [part_1.edges().sort_by_distance(p)[0] for p in [
        (-19.45, 45.605950242, 17.5),
        (-19.45, 35.605950242, 17.5),
        (19.45, 35.605950242, 17.5),
        (19.45, 45.605950242, 17.5),
    ]]
    fillet(cong_4_edges, radius=CONG_4_R)

    # Esquisse8 → Boss.-Extru.6 (add)
    with BuildSketch(Plane(origin=(0, 0, 15), x_dir=(-1, 0, 0), z_dir=(0, 0, -1))):
        with Locations((0, -40.605)):
            Rectangle(ESQUISSE8_W, ESQUISSE8_H)
    extrude(amount=-BOSS_EXTRU_6_DEPTH)

    # Congé5
    cong_5_edges = [part_1.edges().sort_by_distance(p)[0] for p in [
        (19.45, -45.605, 17.5),
        (19.45, -35.605, 17.5),
        (-19.45, -35.605, 17.5),
        (-19.45, -45.605, 17.5),
    ]]
    fillet(cong_5_edges, radius=CONG_5_R)


solid = part_1.part
